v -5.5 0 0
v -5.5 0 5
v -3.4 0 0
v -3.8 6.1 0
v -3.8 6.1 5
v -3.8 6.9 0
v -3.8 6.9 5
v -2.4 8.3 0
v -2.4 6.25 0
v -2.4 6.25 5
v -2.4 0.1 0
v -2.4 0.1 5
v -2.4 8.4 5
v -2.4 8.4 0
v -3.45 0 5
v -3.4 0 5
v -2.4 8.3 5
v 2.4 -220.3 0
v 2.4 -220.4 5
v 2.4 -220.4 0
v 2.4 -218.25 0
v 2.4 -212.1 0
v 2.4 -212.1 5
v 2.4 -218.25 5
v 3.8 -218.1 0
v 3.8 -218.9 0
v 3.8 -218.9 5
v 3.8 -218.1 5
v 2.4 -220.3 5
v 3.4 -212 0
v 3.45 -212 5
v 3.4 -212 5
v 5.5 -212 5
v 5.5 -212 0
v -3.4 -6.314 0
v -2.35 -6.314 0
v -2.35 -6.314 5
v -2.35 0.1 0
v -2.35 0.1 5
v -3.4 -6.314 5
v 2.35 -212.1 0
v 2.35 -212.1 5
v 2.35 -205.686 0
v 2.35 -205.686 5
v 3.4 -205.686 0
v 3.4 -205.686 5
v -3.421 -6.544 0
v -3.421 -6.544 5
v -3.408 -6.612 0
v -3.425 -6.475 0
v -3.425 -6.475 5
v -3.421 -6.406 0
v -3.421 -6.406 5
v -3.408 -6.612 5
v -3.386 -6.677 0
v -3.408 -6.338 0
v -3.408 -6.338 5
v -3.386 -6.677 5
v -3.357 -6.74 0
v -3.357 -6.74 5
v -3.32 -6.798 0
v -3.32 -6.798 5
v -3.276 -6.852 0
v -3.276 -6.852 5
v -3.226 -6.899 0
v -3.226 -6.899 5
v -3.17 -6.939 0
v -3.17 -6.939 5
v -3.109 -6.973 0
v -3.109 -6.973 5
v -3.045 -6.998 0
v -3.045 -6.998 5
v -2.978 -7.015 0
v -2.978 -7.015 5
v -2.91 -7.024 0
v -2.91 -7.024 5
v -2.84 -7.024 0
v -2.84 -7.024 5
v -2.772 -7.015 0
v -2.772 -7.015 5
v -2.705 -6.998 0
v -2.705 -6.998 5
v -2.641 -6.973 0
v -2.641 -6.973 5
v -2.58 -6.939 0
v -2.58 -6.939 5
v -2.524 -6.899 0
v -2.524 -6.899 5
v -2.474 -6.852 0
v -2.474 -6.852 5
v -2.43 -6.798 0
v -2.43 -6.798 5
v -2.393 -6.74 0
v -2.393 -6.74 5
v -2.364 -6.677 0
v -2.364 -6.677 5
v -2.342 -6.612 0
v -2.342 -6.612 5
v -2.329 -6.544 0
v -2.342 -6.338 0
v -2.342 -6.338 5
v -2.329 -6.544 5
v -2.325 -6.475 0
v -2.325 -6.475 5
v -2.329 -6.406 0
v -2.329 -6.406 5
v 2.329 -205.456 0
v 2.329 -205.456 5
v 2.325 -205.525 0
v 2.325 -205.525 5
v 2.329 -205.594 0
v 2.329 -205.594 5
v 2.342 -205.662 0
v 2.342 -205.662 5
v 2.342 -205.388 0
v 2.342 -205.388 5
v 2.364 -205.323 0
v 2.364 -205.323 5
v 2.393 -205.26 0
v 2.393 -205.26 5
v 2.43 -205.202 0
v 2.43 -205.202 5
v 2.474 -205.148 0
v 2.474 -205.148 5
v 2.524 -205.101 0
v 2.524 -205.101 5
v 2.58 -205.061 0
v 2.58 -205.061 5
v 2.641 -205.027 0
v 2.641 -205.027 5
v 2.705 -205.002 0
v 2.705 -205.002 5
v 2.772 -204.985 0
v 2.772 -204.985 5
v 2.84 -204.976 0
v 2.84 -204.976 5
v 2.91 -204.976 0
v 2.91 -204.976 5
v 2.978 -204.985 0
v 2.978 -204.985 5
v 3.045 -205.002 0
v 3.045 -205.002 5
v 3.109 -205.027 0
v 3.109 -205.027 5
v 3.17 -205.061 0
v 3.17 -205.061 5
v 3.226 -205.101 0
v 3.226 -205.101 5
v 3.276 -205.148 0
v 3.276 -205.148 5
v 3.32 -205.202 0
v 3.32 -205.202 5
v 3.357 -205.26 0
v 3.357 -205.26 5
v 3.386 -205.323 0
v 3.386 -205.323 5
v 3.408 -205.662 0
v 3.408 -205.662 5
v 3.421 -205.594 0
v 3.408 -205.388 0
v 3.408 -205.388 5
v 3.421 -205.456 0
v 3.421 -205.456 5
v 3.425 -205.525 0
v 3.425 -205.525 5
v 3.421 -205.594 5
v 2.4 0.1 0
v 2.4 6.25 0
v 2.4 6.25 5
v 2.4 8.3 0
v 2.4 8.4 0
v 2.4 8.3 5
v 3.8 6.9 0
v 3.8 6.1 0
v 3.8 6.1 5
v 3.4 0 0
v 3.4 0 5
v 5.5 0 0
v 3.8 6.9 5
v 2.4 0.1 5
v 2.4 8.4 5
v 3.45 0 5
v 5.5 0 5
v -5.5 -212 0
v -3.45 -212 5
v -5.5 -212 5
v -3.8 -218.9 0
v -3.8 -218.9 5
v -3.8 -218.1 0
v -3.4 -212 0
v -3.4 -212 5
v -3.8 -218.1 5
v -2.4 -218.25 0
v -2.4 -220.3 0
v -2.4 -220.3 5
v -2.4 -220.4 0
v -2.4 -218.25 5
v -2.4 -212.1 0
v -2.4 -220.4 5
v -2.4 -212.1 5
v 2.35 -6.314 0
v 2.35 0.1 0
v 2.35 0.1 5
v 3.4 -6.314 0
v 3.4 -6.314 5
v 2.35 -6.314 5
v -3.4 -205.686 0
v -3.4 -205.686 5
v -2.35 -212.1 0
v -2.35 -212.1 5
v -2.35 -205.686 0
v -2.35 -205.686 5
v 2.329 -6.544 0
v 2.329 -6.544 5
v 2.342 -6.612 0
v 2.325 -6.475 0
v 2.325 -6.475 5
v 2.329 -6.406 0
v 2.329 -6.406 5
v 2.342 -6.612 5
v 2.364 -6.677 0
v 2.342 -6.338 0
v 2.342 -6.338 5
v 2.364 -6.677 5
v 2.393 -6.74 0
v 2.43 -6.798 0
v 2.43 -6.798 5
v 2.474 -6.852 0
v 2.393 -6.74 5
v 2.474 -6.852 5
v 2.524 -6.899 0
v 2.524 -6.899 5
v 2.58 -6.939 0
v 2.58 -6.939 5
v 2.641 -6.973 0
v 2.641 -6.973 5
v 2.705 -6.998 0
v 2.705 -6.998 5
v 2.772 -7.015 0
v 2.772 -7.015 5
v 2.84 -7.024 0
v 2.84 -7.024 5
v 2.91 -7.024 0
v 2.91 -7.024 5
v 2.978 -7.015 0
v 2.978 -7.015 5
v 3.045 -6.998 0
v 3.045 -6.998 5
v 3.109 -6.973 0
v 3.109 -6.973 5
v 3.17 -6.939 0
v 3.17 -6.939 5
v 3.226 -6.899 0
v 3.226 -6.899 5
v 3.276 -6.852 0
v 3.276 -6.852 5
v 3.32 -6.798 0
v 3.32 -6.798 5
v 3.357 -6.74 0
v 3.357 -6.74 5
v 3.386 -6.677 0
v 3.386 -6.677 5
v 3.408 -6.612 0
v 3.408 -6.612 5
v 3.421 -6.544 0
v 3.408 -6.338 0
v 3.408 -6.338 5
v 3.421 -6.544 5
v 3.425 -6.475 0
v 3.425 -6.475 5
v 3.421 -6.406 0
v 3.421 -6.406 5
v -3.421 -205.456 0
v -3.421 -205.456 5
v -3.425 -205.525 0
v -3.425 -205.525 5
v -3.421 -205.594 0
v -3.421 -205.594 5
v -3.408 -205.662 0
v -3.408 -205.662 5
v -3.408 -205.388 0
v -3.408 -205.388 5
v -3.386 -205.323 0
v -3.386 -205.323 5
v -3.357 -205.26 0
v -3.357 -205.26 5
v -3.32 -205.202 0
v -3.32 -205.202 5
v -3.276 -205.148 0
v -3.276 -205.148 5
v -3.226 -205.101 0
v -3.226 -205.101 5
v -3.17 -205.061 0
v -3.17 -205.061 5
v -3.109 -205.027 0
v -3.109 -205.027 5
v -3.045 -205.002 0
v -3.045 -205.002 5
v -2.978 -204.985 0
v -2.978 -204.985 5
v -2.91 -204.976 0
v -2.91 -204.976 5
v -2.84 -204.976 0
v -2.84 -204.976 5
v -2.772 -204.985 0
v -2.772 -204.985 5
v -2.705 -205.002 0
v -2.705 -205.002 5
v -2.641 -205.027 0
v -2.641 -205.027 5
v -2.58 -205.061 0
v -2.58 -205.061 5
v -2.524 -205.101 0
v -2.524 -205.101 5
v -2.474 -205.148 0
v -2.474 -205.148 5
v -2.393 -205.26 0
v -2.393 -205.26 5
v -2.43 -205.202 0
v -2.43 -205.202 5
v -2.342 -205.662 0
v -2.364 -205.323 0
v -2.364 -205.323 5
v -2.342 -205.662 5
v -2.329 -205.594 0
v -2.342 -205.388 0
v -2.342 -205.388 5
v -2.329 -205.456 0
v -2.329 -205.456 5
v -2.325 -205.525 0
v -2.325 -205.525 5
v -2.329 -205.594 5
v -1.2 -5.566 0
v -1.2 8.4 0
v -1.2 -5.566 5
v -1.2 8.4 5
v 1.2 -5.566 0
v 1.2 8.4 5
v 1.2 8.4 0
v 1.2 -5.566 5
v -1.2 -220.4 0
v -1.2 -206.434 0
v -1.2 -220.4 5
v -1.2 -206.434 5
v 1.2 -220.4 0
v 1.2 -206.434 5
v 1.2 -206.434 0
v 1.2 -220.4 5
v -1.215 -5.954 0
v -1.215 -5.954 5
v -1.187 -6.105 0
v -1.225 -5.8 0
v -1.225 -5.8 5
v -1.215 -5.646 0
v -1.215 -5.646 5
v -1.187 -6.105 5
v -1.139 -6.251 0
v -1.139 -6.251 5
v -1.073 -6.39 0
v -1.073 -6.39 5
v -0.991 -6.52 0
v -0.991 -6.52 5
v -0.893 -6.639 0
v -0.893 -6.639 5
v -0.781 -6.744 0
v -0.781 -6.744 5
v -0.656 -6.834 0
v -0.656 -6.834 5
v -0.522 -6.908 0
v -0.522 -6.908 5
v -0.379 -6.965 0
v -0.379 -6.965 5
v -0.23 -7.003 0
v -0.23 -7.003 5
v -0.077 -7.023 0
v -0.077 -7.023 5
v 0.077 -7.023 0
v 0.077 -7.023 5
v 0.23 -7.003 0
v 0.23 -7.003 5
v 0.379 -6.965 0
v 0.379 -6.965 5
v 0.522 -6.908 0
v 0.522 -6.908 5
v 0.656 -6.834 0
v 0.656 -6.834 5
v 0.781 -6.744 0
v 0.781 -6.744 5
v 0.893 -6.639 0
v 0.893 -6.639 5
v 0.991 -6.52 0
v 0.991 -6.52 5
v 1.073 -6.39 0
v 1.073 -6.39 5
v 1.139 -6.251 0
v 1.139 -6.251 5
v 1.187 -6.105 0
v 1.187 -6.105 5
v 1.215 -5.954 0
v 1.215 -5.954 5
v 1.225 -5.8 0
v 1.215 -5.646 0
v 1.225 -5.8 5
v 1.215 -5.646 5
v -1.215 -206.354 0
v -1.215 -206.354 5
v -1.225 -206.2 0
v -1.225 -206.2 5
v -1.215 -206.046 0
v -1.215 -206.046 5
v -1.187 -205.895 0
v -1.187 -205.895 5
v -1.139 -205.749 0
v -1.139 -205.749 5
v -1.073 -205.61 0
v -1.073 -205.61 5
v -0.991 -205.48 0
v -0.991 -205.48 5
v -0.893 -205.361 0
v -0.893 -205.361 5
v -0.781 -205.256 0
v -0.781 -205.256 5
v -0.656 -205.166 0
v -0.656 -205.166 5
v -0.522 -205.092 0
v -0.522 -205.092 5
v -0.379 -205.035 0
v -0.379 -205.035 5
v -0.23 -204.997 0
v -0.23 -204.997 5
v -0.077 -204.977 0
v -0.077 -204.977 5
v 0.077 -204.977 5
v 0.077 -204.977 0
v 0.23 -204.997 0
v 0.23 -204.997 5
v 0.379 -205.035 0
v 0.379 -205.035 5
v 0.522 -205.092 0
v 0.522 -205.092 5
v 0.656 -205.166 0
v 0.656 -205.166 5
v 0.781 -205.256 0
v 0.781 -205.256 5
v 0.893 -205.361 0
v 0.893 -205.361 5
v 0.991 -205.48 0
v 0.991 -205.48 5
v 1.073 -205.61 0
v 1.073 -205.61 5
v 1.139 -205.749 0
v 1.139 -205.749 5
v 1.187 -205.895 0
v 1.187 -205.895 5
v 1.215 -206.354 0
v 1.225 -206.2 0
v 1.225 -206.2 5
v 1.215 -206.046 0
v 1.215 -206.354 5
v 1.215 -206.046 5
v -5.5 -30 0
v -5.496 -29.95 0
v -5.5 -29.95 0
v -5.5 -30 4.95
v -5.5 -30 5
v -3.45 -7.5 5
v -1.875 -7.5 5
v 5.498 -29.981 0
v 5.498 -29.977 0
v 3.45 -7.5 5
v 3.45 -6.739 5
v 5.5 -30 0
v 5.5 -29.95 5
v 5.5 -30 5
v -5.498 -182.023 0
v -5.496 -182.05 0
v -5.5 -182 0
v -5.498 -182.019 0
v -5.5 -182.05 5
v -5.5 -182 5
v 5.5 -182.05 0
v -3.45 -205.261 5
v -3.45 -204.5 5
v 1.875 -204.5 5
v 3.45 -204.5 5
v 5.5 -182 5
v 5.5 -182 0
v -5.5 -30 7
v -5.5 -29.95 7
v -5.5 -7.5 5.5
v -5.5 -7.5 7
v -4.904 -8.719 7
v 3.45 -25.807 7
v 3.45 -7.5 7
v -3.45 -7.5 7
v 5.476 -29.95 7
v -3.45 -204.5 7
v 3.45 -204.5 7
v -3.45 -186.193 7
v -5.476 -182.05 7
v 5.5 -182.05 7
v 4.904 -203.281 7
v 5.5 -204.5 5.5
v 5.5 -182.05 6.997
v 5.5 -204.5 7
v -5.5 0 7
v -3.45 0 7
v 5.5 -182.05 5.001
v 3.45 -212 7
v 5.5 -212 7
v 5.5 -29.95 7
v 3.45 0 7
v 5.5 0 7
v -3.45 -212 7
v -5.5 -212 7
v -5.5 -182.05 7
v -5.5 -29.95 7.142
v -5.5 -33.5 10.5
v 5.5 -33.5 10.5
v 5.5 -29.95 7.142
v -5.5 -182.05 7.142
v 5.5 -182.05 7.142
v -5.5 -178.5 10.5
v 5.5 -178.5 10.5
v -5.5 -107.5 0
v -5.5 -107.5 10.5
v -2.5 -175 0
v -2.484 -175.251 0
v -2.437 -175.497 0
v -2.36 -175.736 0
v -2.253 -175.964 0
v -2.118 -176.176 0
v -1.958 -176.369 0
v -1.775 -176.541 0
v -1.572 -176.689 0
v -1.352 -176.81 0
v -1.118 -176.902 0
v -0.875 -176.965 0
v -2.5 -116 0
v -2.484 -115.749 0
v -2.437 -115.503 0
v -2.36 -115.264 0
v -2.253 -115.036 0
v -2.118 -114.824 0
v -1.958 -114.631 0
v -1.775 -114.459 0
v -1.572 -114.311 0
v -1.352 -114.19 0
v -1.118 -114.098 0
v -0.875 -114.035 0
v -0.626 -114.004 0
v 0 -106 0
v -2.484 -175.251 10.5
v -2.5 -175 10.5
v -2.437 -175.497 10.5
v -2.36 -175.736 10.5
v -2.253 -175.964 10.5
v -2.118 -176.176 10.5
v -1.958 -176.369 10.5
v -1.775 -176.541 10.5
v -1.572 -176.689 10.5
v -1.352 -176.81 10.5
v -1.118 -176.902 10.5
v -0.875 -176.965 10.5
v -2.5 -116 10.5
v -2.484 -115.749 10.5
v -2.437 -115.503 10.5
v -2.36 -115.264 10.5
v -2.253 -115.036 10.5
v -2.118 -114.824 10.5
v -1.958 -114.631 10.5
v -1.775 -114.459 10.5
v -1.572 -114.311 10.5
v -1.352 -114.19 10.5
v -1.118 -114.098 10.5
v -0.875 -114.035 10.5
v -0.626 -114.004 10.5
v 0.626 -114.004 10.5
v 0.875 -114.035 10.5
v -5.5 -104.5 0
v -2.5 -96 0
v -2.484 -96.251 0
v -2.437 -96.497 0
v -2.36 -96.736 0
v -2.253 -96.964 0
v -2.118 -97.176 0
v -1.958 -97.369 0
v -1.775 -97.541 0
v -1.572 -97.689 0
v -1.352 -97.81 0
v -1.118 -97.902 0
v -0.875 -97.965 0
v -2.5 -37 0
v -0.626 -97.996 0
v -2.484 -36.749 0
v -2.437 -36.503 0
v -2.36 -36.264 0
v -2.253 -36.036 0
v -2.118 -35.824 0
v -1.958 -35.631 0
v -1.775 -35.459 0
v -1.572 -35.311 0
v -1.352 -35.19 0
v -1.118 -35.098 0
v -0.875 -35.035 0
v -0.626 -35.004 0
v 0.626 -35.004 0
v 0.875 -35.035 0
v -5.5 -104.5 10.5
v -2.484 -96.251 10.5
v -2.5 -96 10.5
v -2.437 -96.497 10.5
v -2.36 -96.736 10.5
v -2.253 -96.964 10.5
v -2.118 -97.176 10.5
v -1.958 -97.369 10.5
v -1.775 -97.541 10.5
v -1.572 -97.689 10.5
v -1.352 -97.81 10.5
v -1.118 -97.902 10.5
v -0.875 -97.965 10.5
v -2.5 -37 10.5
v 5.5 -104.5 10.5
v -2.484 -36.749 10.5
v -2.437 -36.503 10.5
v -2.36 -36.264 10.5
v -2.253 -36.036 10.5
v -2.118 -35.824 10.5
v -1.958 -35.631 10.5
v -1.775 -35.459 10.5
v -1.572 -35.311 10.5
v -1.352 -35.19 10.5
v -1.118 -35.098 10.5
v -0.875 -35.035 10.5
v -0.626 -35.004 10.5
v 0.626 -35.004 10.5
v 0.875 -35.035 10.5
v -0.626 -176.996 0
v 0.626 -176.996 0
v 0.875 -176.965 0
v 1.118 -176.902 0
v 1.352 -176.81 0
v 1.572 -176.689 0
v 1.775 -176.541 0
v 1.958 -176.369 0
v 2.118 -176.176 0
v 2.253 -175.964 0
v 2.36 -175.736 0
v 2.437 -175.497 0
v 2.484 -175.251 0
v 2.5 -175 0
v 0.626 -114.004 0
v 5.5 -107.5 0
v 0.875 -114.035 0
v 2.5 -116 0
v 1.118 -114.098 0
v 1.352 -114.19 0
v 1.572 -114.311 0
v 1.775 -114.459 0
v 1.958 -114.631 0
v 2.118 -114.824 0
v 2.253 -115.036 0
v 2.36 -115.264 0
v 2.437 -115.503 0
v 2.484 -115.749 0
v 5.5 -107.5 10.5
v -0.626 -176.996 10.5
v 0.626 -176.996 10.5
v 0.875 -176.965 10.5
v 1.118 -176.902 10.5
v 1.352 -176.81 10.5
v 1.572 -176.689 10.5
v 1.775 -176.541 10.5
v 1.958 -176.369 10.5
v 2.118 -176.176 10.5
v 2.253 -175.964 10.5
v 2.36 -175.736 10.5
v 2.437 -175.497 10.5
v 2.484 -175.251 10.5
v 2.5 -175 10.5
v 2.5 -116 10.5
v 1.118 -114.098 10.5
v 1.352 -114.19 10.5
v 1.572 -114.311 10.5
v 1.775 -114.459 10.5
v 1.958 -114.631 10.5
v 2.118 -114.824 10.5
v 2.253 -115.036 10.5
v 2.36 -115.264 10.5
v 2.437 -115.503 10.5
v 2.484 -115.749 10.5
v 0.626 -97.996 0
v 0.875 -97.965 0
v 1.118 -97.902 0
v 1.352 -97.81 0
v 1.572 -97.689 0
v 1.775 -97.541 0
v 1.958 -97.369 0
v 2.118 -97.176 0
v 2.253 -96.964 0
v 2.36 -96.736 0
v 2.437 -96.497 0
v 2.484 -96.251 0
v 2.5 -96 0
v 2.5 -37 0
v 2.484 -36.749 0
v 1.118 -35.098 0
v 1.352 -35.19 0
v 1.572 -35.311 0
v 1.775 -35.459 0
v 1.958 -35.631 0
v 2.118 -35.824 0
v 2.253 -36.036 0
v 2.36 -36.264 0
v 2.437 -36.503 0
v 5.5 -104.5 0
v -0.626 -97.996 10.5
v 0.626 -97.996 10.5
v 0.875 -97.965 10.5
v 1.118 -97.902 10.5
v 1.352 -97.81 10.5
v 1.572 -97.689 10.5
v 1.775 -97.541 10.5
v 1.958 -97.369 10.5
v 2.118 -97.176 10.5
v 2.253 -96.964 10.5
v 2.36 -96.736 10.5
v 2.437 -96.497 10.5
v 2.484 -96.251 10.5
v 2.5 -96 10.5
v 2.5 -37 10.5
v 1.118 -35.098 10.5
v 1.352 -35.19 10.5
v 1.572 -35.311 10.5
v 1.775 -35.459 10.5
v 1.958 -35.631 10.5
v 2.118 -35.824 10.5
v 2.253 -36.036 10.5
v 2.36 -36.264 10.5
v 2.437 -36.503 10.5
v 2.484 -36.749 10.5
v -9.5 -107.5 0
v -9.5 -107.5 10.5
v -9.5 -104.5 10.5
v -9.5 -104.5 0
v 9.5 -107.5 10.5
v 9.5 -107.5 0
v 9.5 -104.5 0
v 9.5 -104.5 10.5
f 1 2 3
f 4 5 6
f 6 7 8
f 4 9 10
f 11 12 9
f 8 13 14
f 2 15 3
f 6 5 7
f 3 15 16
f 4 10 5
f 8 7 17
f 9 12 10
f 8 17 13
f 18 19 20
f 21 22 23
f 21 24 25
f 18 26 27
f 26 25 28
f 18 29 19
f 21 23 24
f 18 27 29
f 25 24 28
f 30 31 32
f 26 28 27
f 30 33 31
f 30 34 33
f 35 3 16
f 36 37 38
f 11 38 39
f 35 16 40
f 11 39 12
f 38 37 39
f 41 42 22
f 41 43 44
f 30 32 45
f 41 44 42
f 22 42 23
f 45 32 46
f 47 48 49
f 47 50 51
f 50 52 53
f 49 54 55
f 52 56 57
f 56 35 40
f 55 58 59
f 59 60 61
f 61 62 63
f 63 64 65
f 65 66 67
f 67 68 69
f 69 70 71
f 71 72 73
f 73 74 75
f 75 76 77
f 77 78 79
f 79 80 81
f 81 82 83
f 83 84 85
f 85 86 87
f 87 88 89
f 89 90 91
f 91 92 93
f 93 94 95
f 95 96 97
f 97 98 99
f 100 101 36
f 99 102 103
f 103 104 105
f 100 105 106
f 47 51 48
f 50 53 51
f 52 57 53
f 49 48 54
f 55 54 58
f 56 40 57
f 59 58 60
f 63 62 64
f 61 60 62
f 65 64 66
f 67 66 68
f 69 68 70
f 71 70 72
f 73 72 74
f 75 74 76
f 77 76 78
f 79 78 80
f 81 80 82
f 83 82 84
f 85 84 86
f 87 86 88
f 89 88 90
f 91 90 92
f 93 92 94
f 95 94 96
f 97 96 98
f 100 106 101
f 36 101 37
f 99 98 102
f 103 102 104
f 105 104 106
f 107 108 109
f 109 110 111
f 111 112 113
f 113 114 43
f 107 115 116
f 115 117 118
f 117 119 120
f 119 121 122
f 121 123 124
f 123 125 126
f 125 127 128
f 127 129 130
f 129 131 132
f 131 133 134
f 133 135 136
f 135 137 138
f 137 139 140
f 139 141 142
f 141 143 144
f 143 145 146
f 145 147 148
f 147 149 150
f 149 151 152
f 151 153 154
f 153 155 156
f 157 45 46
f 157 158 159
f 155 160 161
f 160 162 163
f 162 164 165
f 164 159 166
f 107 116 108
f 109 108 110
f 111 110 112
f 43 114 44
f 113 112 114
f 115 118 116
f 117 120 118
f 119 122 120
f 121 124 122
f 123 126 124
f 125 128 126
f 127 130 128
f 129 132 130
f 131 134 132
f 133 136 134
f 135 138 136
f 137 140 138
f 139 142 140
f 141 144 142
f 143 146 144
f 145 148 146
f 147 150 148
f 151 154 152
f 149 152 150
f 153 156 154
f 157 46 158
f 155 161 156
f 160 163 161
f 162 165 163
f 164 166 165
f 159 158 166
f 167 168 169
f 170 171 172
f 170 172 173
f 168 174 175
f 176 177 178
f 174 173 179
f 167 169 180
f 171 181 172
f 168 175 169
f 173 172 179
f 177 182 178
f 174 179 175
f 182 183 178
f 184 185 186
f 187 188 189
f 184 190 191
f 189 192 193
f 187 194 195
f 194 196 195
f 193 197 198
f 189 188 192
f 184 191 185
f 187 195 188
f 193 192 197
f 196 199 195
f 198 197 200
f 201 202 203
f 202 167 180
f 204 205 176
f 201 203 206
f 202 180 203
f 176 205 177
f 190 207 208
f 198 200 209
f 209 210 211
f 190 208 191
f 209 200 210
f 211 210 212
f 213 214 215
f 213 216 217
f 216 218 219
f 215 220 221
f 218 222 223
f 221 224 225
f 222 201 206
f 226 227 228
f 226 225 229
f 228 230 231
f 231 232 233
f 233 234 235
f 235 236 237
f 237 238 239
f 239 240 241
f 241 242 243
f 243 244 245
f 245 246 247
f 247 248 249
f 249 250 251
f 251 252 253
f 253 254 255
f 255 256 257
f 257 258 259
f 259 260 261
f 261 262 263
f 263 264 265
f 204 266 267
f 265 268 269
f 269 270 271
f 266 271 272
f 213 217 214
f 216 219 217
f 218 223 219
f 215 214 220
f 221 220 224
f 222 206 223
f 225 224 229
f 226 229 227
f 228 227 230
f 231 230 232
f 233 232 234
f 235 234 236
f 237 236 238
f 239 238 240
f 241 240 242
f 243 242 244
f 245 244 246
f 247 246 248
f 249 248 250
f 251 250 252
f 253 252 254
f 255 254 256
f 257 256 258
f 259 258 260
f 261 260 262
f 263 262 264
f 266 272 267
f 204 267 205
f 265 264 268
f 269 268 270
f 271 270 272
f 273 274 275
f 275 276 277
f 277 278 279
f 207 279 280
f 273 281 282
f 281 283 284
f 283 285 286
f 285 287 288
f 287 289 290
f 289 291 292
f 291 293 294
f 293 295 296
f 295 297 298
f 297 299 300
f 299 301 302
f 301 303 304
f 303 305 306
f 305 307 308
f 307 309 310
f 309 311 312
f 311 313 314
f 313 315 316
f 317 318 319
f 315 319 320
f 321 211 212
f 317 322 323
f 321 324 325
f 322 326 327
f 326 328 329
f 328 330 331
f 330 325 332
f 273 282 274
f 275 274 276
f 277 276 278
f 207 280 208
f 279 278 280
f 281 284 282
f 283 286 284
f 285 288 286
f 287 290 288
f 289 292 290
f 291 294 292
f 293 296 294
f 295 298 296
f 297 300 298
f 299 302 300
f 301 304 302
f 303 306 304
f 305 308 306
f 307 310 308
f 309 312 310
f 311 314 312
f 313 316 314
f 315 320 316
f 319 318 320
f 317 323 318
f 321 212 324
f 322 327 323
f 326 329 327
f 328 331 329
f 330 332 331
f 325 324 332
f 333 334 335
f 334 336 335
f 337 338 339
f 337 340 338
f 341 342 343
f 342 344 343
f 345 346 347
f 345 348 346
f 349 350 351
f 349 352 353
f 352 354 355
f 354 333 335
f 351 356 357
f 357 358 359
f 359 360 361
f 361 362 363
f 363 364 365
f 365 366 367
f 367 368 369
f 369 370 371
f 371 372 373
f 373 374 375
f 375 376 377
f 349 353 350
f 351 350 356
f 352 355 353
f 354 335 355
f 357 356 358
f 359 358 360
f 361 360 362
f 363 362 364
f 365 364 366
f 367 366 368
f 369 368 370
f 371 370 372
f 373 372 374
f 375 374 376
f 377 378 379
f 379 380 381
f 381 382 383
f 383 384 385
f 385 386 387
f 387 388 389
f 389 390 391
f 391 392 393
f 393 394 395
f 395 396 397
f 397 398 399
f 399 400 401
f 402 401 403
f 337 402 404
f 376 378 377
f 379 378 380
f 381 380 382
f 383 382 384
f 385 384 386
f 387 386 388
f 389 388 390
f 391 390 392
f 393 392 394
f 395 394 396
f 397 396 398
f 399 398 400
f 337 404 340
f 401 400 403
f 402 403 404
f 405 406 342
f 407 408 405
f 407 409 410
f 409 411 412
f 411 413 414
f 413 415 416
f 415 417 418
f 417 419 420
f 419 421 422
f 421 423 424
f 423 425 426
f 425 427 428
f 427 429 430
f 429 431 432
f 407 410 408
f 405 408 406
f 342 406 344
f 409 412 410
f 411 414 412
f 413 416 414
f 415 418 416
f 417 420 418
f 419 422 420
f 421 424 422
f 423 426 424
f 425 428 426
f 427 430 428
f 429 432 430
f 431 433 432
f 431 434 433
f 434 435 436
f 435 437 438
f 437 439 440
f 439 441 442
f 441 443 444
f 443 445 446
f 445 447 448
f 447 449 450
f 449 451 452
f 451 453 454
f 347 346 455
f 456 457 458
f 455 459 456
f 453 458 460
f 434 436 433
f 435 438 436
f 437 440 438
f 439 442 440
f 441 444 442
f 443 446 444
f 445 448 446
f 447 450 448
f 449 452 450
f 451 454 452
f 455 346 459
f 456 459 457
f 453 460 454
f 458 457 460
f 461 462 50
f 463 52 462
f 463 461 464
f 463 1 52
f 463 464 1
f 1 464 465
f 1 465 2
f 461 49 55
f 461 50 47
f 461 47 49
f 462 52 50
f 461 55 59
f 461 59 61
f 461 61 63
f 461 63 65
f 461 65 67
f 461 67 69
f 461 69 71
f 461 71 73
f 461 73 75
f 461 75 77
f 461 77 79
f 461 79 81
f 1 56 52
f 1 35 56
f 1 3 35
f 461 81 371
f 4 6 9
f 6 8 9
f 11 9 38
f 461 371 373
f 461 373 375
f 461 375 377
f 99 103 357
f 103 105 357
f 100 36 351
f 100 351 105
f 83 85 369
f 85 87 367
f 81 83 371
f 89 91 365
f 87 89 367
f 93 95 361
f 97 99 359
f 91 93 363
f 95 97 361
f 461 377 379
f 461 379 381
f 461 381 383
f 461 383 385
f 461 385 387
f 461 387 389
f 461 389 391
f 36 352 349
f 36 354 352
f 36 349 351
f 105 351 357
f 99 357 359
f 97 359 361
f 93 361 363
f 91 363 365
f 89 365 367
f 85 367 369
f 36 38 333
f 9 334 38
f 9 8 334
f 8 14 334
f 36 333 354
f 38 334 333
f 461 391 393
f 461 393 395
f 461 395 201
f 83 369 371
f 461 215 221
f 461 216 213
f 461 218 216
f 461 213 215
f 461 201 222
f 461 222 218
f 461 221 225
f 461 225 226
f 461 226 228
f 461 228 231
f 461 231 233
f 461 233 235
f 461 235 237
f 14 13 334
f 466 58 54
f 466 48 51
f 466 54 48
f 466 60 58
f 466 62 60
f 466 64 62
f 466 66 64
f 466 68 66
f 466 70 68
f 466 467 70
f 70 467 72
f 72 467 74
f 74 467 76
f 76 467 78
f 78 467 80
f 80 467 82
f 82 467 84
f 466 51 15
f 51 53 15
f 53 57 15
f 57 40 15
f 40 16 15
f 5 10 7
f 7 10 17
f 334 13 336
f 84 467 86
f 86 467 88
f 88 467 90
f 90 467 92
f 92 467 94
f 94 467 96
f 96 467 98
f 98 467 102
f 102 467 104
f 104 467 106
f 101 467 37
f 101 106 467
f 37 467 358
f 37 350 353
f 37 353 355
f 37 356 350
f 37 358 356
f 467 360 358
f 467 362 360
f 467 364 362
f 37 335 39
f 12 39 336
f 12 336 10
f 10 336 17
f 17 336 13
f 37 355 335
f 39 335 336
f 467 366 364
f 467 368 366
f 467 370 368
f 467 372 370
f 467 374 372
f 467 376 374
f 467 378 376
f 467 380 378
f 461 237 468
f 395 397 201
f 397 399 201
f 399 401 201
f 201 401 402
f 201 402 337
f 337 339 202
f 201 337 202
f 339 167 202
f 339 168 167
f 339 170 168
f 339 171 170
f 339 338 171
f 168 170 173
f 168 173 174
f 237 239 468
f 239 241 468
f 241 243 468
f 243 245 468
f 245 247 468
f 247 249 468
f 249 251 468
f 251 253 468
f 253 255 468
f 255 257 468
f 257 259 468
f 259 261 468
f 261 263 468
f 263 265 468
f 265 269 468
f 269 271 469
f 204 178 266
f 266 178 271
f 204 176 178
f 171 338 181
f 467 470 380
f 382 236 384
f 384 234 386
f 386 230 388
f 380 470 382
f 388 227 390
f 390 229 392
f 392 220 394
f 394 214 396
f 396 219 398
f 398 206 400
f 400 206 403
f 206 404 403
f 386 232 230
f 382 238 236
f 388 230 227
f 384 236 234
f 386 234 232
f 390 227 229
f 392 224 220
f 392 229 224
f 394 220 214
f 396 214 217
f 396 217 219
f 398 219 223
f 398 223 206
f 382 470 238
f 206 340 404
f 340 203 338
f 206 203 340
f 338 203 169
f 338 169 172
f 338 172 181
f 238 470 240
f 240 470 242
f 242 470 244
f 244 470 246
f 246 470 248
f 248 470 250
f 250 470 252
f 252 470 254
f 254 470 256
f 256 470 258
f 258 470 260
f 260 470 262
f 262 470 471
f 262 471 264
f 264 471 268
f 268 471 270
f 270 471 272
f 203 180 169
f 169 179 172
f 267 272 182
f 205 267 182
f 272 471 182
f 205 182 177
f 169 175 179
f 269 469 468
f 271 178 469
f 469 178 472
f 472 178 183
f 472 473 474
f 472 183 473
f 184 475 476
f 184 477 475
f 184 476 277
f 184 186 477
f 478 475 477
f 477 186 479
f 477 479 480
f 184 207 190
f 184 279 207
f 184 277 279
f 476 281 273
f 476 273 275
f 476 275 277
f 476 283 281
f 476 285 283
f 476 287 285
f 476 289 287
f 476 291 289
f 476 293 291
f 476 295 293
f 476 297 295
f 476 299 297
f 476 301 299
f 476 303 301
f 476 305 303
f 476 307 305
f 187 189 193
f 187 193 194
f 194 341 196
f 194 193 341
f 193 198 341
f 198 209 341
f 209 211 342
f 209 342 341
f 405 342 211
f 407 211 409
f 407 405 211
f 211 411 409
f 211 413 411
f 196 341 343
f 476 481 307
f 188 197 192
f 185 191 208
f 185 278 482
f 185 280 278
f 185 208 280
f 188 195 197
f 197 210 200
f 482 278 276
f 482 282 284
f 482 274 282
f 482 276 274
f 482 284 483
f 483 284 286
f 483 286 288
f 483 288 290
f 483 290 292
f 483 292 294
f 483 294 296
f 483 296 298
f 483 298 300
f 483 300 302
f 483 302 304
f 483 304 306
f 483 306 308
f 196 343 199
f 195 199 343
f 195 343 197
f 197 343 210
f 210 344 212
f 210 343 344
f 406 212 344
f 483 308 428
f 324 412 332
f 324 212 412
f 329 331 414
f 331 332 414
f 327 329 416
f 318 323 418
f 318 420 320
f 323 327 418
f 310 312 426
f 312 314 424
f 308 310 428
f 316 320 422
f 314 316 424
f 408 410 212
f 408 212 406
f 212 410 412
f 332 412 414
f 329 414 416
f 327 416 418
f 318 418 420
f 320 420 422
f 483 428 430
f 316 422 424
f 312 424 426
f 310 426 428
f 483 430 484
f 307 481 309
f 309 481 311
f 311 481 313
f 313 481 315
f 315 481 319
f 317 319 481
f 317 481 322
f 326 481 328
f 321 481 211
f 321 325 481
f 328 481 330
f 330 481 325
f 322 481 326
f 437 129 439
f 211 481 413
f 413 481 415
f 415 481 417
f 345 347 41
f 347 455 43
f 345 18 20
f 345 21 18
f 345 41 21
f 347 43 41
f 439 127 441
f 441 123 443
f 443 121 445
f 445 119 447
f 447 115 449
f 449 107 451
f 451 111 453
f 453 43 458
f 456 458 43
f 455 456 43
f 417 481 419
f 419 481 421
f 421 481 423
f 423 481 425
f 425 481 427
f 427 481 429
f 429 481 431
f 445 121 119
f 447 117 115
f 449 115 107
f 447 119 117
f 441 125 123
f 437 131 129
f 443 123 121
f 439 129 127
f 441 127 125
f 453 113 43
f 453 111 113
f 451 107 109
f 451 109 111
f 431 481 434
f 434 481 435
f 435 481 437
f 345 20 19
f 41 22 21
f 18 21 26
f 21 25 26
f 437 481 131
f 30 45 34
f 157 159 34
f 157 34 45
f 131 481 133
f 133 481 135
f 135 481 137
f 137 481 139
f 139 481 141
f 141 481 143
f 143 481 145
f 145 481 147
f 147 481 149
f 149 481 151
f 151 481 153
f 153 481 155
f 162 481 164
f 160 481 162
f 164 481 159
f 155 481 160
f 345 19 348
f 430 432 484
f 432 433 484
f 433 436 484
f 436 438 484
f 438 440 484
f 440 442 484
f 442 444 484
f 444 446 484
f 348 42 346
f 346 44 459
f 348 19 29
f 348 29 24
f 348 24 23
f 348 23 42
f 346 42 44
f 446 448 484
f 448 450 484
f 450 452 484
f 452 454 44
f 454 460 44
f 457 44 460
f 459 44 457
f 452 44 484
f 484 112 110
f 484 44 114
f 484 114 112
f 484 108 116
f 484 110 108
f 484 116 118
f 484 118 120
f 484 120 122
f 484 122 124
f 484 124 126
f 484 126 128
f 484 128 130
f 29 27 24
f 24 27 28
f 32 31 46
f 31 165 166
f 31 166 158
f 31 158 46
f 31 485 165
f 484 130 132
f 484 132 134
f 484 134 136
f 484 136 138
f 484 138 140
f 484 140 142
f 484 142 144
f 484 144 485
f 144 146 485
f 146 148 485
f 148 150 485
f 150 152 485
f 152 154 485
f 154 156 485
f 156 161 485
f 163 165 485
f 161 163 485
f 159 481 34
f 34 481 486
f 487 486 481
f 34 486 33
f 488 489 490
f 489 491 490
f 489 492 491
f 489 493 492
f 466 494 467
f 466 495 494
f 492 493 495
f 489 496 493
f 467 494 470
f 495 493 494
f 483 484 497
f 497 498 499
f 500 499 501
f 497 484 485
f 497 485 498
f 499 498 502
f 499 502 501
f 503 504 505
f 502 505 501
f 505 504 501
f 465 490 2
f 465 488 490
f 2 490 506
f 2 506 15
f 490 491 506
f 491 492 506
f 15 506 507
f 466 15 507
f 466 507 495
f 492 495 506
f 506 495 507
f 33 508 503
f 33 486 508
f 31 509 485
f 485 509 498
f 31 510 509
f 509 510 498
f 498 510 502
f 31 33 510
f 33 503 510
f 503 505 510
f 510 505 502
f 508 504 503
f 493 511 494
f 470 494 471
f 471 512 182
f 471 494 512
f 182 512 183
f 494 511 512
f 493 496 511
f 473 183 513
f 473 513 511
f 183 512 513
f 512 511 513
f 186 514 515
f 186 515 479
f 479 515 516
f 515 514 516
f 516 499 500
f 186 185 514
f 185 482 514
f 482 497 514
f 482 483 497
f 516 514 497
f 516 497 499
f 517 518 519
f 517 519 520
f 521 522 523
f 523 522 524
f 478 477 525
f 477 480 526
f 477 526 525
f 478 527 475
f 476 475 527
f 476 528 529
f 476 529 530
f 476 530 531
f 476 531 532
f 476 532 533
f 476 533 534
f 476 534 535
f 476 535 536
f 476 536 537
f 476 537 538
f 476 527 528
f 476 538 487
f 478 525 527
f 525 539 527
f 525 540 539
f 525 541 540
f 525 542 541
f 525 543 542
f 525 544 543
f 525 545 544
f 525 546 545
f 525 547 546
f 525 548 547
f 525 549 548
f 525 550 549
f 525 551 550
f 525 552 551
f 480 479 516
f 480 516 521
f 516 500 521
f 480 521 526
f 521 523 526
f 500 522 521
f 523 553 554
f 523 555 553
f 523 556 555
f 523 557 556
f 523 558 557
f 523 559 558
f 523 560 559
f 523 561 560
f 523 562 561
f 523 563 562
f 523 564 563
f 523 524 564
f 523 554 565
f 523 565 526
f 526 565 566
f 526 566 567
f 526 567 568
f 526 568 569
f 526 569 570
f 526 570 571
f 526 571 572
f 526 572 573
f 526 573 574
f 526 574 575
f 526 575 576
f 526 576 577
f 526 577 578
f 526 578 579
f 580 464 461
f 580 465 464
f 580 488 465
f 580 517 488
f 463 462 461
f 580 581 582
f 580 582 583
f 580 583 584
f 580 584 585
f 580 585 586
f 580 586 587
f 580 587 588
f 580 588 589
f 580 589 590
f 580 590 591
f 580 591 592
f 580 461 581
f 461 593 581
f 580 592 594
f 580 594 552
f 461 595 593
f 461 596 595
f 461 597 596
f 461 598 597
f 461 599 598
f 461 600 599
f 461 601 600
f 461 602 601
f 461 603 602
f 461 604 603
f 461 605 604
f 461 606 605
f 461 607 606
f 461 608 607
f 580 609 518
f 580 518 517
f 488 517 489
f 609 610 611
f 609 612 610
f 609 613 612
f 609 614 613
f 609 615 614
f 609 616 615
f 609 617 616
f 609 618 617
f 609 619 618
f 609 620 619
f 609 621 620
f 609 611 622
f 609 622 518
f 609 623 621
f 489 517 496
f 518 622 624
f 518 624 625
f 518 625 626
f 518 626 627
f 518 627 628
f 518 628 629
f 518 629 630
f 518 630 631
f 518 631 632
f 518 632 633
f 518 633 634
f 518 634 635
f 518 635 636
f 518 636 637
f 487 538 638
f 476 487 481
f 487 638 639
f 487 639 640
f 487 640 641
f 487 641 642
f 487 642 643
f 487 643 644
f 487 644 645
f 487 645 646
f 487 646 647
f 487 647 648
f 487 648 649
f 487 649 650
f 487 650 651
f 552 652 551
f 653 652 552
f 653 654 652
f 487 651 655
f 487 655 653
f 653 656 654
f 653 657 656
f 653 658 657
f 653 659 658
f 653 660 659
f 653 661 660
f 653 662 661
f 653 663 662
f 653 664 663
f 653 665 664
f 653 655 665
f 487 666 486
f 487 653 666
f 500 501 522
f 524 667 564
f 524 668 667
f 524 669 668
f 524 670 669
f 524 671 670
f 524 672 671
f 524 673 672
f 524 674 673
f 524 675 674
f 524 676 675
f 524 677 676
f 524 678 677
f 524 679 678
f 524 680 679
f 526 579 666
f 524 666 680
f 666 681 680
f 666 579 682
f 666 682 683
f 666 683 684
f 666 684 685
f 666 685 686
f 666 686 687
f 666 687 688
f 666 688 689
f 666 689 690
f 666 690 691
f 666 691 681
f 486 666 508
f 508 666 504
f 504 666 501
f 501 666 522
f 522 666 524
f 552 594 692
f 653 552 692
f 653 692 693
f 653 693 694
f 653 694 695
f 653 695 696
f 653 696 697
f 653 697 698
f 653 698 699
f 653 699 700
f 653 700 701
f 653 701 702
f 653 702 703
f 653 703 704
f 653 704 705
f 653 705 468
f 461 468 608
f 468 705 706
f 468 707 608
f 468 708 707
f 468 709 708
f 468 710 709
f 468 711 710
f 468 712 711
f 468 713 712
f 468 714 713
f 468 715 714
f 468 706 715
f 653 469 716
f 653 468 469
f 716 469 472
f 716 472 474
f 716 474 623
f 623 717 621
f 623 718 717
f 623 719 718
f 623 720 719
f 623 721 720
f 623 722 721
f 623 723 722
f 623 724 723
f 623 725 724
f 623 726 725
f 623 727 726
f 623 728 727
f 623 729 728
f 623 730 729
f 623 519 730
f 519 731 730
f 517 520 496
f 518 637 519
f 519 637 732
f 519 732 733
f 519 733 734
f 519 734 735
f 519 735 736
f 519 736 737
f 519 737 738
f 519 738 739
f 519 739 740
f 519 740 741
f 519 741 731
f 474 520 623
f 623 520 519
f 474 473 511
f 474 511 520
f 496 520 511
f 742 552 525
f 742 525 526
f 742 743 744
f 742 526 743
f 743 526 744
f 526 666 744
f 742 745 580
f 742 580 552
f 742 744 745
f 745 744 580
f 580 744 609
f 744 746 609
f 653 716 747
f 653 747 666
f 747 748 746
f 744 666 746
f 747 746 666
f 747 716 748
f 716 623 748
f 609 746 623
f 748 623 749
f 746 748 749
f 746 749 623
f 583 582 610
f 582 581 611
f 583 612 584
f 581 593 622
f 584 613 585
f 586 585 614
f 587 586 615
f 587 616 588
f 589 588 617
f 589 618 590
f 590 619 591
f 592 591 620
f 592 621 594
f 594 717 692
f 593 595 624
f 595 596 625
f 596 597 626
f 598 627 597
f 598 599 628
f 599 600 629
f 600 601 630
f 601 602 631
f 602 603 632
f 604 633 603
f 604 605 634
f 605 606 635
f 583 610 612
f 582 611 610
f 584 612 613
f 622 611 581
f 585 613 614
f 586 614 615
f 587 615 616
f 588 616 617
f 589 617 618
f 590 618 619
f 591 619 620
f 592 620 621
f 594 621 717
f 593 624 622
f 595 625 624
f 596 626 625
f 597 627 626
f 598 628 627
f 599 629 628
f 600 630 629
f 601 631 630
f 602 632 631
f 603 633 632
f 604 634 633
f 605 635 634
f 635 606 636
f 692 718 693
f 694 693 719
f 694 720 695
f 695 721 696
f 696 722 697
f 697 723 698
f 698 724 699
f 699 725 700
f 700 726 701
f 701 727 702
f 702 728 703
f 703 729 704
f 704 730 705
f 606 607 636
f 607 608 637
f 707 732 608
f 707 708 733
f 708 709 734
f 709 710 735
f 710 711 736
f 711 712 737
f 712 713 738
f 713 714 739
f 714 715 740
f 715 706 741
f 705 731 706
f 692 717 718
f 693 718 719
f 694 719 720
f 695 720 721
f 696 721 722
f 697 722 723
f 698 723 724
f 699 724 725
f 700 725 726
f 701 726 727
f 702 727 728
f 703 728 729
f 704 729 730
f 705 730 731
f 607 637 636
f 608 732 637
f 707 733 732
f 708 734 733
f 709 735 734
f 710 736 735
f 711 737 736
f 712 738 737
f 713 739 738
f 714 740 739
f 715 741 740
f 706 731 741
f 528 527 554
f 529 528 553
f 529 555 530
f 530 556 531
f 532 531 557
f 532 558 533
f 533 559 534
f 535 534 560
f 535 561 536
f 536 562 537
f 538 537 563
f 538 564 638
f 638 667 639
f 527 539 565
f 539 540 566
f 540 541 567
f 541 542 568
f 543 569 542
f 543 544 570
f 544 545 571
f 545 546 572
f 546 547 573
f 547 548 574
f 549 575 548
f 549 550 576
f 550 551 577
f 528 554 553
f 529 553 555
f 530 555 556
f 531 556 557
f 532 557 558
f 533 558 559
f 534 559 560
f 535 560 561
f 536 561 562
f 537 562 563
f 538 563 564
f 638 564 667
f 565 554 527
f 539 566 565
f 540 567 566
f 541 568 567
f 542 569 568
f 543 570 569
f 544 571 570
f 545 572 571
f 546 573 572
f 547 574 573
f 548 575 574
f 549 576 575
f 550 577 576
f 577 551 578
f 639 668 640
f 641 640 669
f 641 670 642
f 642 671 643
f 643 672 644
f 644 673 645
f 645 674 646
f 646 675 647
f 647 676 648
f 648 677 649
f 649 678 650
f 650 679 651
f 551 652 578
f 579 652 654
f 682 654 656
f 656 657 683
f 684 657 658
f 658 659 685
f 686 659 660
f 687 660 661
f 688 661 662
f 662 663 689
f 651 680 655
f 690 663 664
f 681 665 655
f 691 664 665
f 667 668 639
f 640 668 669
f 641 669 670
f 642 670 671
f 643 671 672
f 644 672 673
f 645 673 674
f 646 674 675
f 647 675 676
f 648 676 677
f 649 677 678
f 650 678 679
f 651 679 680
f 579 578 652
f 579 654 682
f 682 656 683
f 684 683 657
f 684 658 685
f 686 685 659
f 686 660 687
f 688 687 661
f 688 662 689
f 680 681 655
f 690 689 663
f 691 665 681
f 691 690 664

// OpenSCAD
$fn = 50;

difference() {
	union() {
		translate(v = [0, 0, 0]) {
			rotate(a = [0, 0, 0]) {
				difference() {
					union() {
						translate(v = [0, 0, 0]) {
							rotate(a = [0, 0, 0]) {
								difference() {
									union() {
										translate(v = [0, 0, 0]) {
											rotate(a = [0, 0, 0]) {
												difference() {
													union() {
														translate(v = [0, 0, 0]) {
															rotate(a = [0, 0, 0]) {
																difference() {
																	union() {
																		translate(v = [-5.5, -30.0, 0]) {
																			cube(size = [11.0, 38.4, 5.0]);
																		}
																	}
																	union() {
																		translate(v = [0, 0, -0.1]) {
																			linear_extrude(height = 5.2) {
																				polygon(points = [[-2.4, 0], [-2.4, 6.25], [-3.8, 6.1], [-3.8, 6.8999999999999995], [-2.4, 8.299999999999999], [-2.4, 9.399999999999999], [-5.7, 9.399999999999999], [-5.7, 0]]);
																			}
																		}
																		translate(v = [0, 0, -0.1]) {
																			linear_extrude(height = 5.2) {
																				polygon(points = [[-2.35, -6.5], [-2.35, -6.3375], [-2.35, -6.175], [-2.35, -6.0125], [-2.35, -5.85], [-2.35, -5.6875], [-2.35, -5.525], [-2.35, -5.3625], [-2.35, -5.2], [-2.35, -5.0375], [-2.35, -4.875], [-2.35, -4.7125], [-2.35, -4.55], [-2.35, -4.3875], [-2.35, -4.225], [-2.35, -4.0625], [-2.35, -3.9], [-2.35, -3.7375], [-2.35, -3.575], [-2.35, -3.4125], [-2.35, -3.25], [-2.35, -3.0875], [-2.35, -2.925], [-2.35, -2.7625], [-2.35, -2.6], [-2.35, -2.4375], [-2.35, -2.2750000000000004], [-2.35, -2.1125], [-2.35, -1.9500000000000002], [-2.35, -1.7874999999999996], [-2.35, -1.625], [-2.35, -1.4625000000000004], [-2.35, -1.2999999999999998], [-2.35, -1.1375000000000002], [-2.35, -0.9749999999999996], [-2.35, -0.8125], [-2.35, -0.6500000000000004], [-2.35, -0.4874999999999998], [-2.35, -0.3250000000000002], [-2.35, -0.16249999999999964], [-2.35, 0.0], [-2.35, 0.1], [-3.4, 0.1], [-3.4, -6.5]]);
																			}
																		}
																		translate(v = [-2.875, -6.475, -0.1]) {
																			cylinder(h = 5.2, r = 0.55);
																		}
																		translate(v = [0, 0, -0.1]) {
																			linear_extrude(height = 5.2) {
																				polygon(points = [[2.4, 0], [2.4, 6.25], [3.8, 6.1], [3.8, 6.8999999999999995], [2.4, 8.299999999999999], [2.4, 9.399999999999999], [5.7, 9.399999999999999], [5.7, 0]]);
																			}
																		}
																		translate(v = [0, 0, -0.1]) {
																			linear_extrude(height = 5.2) {
																				polygon(points = [[2.35, -6.5], [2.35, -6.3375], [2.35, -6.175], [2.35, -6.0125], [2.35, -5.85], [2.35, -5.6875], [2.35, -5.525], [2.35, -5.3625], [2.35, -5.2], [2.35, -5.0375], [2.35, -4.875], [2.35, -4.7125], [2.35, -4.55], [2.35, -4.3875], [2.35, -4.225], [2.35, -4.0625], [2.35, -3.9], [2.35, -3.7375], [2.35, -3.575], [2.35, -3.4125], [2.35, -3.25], [2.35, -3.0875], [2.35, -2.925], [2.35, -2.7625], [2.35, -2.6], [2.35, -2.4375], [2.35, -2.2750000000000004], [2.35, -2.1125], [2.35, -1.9500000000000002], [2.35, -1.7874999999999996], [2.35, -1.625], [2.35, -1.4625000000000004], [2.35, -1.2999999999999998], [2.35, -1.1375000000000002], [2.35, -0.9749999999999996], [2.35, -0.8125], [2.35, -0.6500000000000004], [2.35, -0.4874999999999998], [2.35, -0.3250000000000002], [2.35, -0.16249999999999964], [2.35, 0.0], [2.35, 0.1], [3.4, 0.1], [3.4, -6.5]]);
																			}
																		}
																		translate(v = [2.875, -6.475, -0.1]) {
																			cylinder(h = 5.2, r = 0.55);
																		}
																		translate(v = [0, 0, -0.1]) {
																			linear_extrude(height = 5.2) {
																				polygon(points = [[-1.2, -5.85], [-1.2, -5.632142857142857], [-1.2, -5.414285714285714], [-1.2, -5.196428571428571], [-1.2, -4.978571428571428], [-1.2, -4.760714285714285], [-1.2, -4.542857142857143], [-1.2, -4.324999999999999], [-1.2, -4.107142857142857], [-1.2, -3.8892857142857142], [-1.2, -3.6714285714285713], [-1.2, -3.4535714285714283], [-1.2, -3.2357142857142853], [-1.2, -3.0178571428571423], [-1.2, -2.8], [-1.2, -2.582142857142857], [-1.2, -2.364285714285714], [-1.2, -2.146428571428571], [-1.2, -1.9285714285714284], [-1.2, -1.7107142857142854], [-1.2, -1.4928571428571429], [-1.2, -1.2749999999999995], [-1.2, -1.057142857142857], [-1.2, -0.8392857142857135], [-1.2, -0.621428571428571], [-1.2, -0.40357142857142847], [-1.2, -0.18571428571428505], [-1.2, 0], [-1.2, 0.03214285714285747], [-1.2, 0.25], [-1.2, 0.4678571428571434], [-1.2, 0.6857142857142859], [-1.2, 0.9035714285714294], [-1.2, 1.1214285714285719], [-1.2, 1.3392857142857144], [-1.2, 1.5571428571428578], [-1.2, 1.7750000000000004], [-1.2, 1.9928571428571429], [-1.2, 2.2107142857142854], [-1.2, 2.428571428571429], [-1.2, 2.6464285714285722], [-1.2, 2.864285714285714], [-1.2, 3.0821428571428573], [-1.2, 3.3000000000000007], [-1.2, 3.5178571428571423], [-1.2, 3.7357142857142858], [-1.2, 3.953571428571429], [-1.2, 4.171428571428573], [-1.2, 4.389285714285714], [-1.2, 4.607142857142858], [-1.2, 4.825000000000001], [-1.2, 5.042857142857143], [-1.2, 5.260714285714286], [-1.2, 5.4785714285714295], [-1.2, 5.696428571428571], [-1.2, 5.914285714285715], [-1.2, 6.1], [-1.2, 6.132142857142858], [-1.2, 6.25], [-1.2, 6.35], [-1.2, 6.567857142857143], [-1.2, 6.7857142857142865], [-1.2, 7.003571428571428], [-1.2, 7.2214285714285715], [-1.2, 7.439285714285715], [-1.2, 7.657142857142858], [-1.2, 7.875], [-1.2, 8.092857142857143], [-1.2, 8.310714285714287], [-1.2, 8.528571428571428], [-1.2, 8.746428571428572], [-1.2, 8.964285714285715], [-1.2, 9.182142857142857], [-1.2, 9.4], [1.2, 9.4], [1.2, 9.182142857142857], [1.2, 8.964285714285715], [1.2, 8.746428571428572], [1.2, 8.528571428571428], [1.2, 8.310714285714287], [1.2, 8.092857142857143], [1.2, 7.875], [1.2, 7.657142857142858], [1.2, 7.439285714285715], [1.2, 7.2214285714285715], [1.2, 7.003571428571428], [1.2, 6.7857142857142865], [1.2, 6.567857142857143], [1.2, 6.35], [1.2, 6.25], [1.2, 6.132142857142858], [1.2, 6.1], [1.2, 5.914285714285715], [1.2, 5.696428571428571], [1.2, 5.4785714285714295], [1.2, 5.260714285714286], [1.2, 5.042857142857143], [1.2, 4.825000000000001], [1.2, 4.607142857142858], [1.2, 4.389285714285714], [1.2, 4.171428571428573], [1.2, 3.953571428571429], [1.2, 3.7357142857142858], [1.2, 3.5178571428571423], [1.2, 3.3000000000000007], [1.2, 3.0821428571428573], [1.2, 2.864285714285714], [1.2, 2.6464285714285722], [1.2, 2.428571428571429], [1.2, 2.2107142857142854], [1.2, 1.9928571428571429], [1.2, 1.7750000000000004], [1.2, 1.5571428571428578], [1.2, 1.3392857142857144], [1.2, 1.1214285714285719], [1.2, 0.9035714285714294], [1.2, 0.6857142857142859], [1.2, 0.4678571428571434], [1.2, 0.25], [1.2, 0.03214285714285747], [1.2, 0], [1.2, -0.18571428571428505], [1.2, -0.40357142857142847], [1.2, -0.621428571428571], [1.2, -0.8392857142857135], [1.2, -1.057142857142857], [1.2, -1.2749999999999995], [1.2, -1.4928571428571429], [1.2, -1.7107142857142854], [1.2, -1.9285714285714284], [1.2, -2.146428571428571], [1.2, -2.364285714285714], [1.2, -2.582142857142857], [1.2, -2.8], [1.2, -3.0178571428571423], [1.2, -3.2357142857142853], [1.2, -3.4535714285714283], [1.2, -3.6714285714285713], [1.2, -3.8892857142857142], [1.2, -4.107142857142857], [1.2, -4.324999999999999], [1.2, -4.542857142857143], [1.2, -4.760714285714285], [1.2, -4.978571428571428], [1.2, -5.196428571428571], [1.2, -5.414285714285714], [1.2, -5.632142857142857], [1.2, -5.85]]);
																			}
																		}
																		translate(v = [0, -5.8, -0.1]) {
																			cylinder(h = 5.2, r = 1.2249999999999999);
																		}
																	}
																}
															}
														}
														translate(v = [0, 0, 0]) {
															rotate(a = [0, 0, 0]) {
																difference() {
																	union() {
																		translate(v = [-5.5, -30.0, 4.95]) {
																			cube(size = [11.0, 22.5, 2.05]);
																		}
																	}
																	union();
																}
															}
														}
														translate(v = [-5.5, -30.0, 4.95]) {
															cube(size = [2.0500000000000003, 30.0, 2.05]);
														}
														translate(v = [3.4499999999999997, -30.0, 4.95]) {
															cube(size = [2.0500000000000003, 30.0, 2.05]);
														}
													}
													union();
												}
											}
										}
									}
									union();
								}
							}
						}
						translate(v = [0, -212.0, 0]) {
							rotate(a = [0, 0, 180]) {
								difference() {
									union() {
										translate(v = [0, 0, 0]) {
											rotate(a = [0, 0, 0]) {
												difference() {
													union() {
														translate(v = [0, 0, 0]) {
															rotate(a = [0, 0, 0]) {
																difference() {
																	union() {
																		translate(v = [-5.5, -30.0, 0]) {
																			cube(size = [11.0, 38.4, 5.0]);
																		}
																	}
																	union() {
																		translate(v = [0, 0, -0.1]) {
																			linear_extrude(height = 5.2) {
																				polygon(points = [[-2.4, 0], [-2.4, 6.25], [-3.8, 6.1], [-3.8, 6.8999999999999995], [-2.4, 8.299999999999999], [-2.4, 9.399999999999999], [-5.7, 9.399999999999999], [-5.7, 0]]);
																			}
																		}
																		translate(v = [0, 0, -0.1]) {
																			linear_extrude(height = 5.2) {
																				polygon(points = [[-2.35, -6.5], [-2.35, -6.3375], [-2.35, -6.175], [-2.35, -6.0125], [-2.35, -5.85], [-2.35, -5.6875], [-2.35, -5.525], [-2.35, -5.3625], [-2.35, -5.2], [-2.35, -5.0375], [-2.35, -4.875], [-2.35, -4.7125], [-2.35, -4.55], [-2.35, -4.3875], [-2.35, -4.225], [-2.35, -4.0625], [-2.35, -3.9], [-2.35, -3.7375], [-2.35, -3.575], [-2.35, -3.4125], [-2.35, -3.25], [-2.35, -3.0875], [-2.35, -2.925], [-2.35, -2.7625], [-2.35, -2.6], [-2.35, -2.4375], [-2.35, -2.2750000000000004], [-2.35, -2.1125], [-2.35, -1.9500000000000002], [-2.35, -1.7874999999999996], [-2.35, -1.625], [-2.35, -1.4625000000000004], [-2.35, -1.2999999999999998], [-2.35, -1.1375000000000002], [-2.35, -0.9749999999999996], [-2.35, -0.8125], [-2.35, -0.6500000000000004], [-2.35, -0.4874999999999998], [-2.35, -0.3250000000000002], [-2.35, -0.16249999999999964], [-2.35, 0.0], [-2.35, 0.1], [-3.4, 0.1], [-3.4, -6.5]]);
																			}
																		}
																		translate(v = [-2.875, -6.475, -0.1]) {
																			cylinder(h = 5.2, r = 0.55);
																		}
																		translate(v = [0, 0, -0.1]) {
																			linear_extrude(height = 5.2) {
																				polygon(points = [[2.4, 0], [2.4, 6.25], [3.8, 6.1], [3.8, 6.8999999999999995], [2.4, 8.299999999999999], [2.4, 9.399999999999999], [5.7, 9.399999999999999], [5.7, 0]]);
																			}
																		}
																		translate(v = [0, 0, -0.1]) {
																			linear_extrude(height = 5.2) {
																				polygon(points = [[2.35, -6.5], [2.35, -6.3375], [2.35, -6.175], [2.35, -6.0125], [2.35, -5.85], [2.35, -5.6875], [2.35, -5.525], [2.35, -5.3625], [2.35, -5.2], [2.35, -5.0375], [2.35, -4.875], [2.35, -4.7125], [2.35, -4.55], [2.35, -4.3875], [2.35, -4.225], [2.35, -4.0625], [2.35, -3.9], [2.35, -3.7375], [2.35, -3.575], [2.35, -3.4125], [2.35, -3.25], [2.35, -3.0875], [2.35, -2.925], [2.35, -2.7625], [2.35, -2.6], [2.35, -2.4375], [2.35, -2.2750000000000004], [2.35, -2.1125], [2.35, -1.9500000000000002], [2.35, -1.7874999999999996], [2.35, -1.625], [2.35, -1.4625000000000004], [2.35, -1.2999999999999998], [2.35, -1.1375000000000002], [2.35, -0.9749999999999996], [2.35, -0.8125], [2.35, -0.6500000000000004], [2.35, -0.4874999999999998], [2.35, -0.3250000000000002], [2.35, -0.16249999999999964], [2.35, 0.0], [2.35, 0.1], [3.4, 0.1], [3.4, -6.5]]);
																			}
																		}
																		translate(v = [2.875, -6.475, -0.1]) {
																			cylinder(h = 5.2, r = 0.55);
																		}
																		translate(v = [0, 0, -0.1]) {
																			linear_extrude(height = 5.2) {
																				polygon(points = [[-1.2, -5.85], [-1.2, -5.632142857142857], [-1.2, -5.414285714285714], [-1.2, -5.196428571428571], [-1.2, -4.978571428571428], [-1.2, -4.760714285714285], [-1.2, -4.542857142857143], [-1.2, -4.324999999999999], [-1.2, -4.107142857142857], [-1.2, -3.8892857142857142], [-1.2, -3.6714285714285713], [-1.2, -3.4535714285714283], [-1.2, -3.2357142857142853], [-1.2, -3.0178571428571423], [-1.2, -2.8], [-1.2, -2.582142857142857], [-1.2, -2.364285714285714], [-1.2, -2.146428571428571], [-1.2, -1.9285714285714284], [-1.2, -1.7107142857142854], [-1.2, -1.4928571428571429], [-1.2, -1.2749999999999995], [-1.2, -1.057142857142857], [-1.2, -0.8392857142857135], [-1.2, -0.621428571428571], [-1.2, -0.40357142857142847], [-1.2, -0.18571428571428505], [-1.2, 0], [-1.2, 0.03214285714285747], [-1.2, 0.25], [-1.2, 0.4678571428571434], [-1.2, 0.6857142857142859], [-1.2, 0.9035714285714294], [-1.2, 1.1214285714285719], [-1.2, 1.3392857142857144], [-1.2, 1.5571428571428578], [-1.2, 1.7750000000000004], [-1.2, 1.9928571428571429], [-1.2, 2.2107142857142854], [-1.2, 2.428571428571429], [-1.2, 2.6464285714285722], [-1.2, 2.864285714285714], [-1.2, 3.0821428571428573], [-1.2, 3.3000000000000007], [-1.2, 3.5178571428571423], [-1.2, 3.7357142857142858], [-1.2, 3.953571428571429], [-1.2, 4.171428571428573], [-1.2, 4.389285714285714], [-1.2, 4.607142857142858], [-1.2, 4.825000000000001], [-1.2, 5.042857142857143], [-1.2, 5.260714285714286], [-1.2, 5.4785714285714295], [-1.2, 5.696428571428571], [-1.2, 5.914285714285715], [-1.2, 6.1], [-1.2, 6.132142857142858], [-1.2, 6.25], [-1.2, 6.35], [-1.2, 6.567857142857143], [-1.2, 6.7857142857142865], [-1.2, 7.003571428571428], [-1.2, 7.2214285714285715], [-1.2, 7.439285714285715], [-1.2, 7.657142857142858], [-1.2, 7.875], [-1.2, 8.092857142857143], [-1.2, 8.310714285714287], [-1.2, 8.528571428571428], [-1.2, 8.746428571428572], [-1.2, 8.964285714285715], [-1.2, 9.182142857142857], [-1.2, 9.4], [1.2, 9.4], [1.2, 9.182142857142857], [1.2, 8.964285714285715], [1.2, 8.746428571428572], [1.2, 8.528571428571428], [1.2, 8.310714285714287], [1.2, 8.092857142857143], [1.2, 7.875], [1.2, 7.657142857142858], [1.2, 7.439285714285715], [1.2, 7.2214285714285715], [1.2, 7.003571428571428], [1.2, 6.7857142857142865], [1.2, 6.567857142857143], [1.2, 6.35], [1.2, 6.25], [1.2, 6.132142857142858], [1.2, 6.1], [1.2, 5.914285714285715], [1.2, 5.696428571428571], [1.2, 5.4785714285714295], [1.2, 5.260714285714286], [1.2, 5.042857142857143], [1.2, 4.825000000000001], [1.2, 4.607142857142858], [1.2, 4.389285714285714], [1.2, 4.171428571428573], [1.2, 3.953571428571429], [1.2, 3.7357142857142858], [1.2, 3.5178571428571423], [1.2, 3.3000000000000007], [1.2, 3.0821428571428573], [1.2, 2.864285714285714], [1.2, 2.6464285714285722], [1.2, 2.428571428571429], [1.2, 2.2107142857142854], [1.2, 1.9928571428571429], [1.2, 1.7750000000000004], [1.2, 1.5571428571428578], [1.2, 1.3392857142857144], [1.2, 1.1214285714285719], [1.2, 0.9035714285714294], [1.2, 0.6857142857142859], [1.2, 0.4678571428571434], [1.2, 0.25], [1.2, 0.03214285714285747], [1.2, 0], [1.2, -0.18571428571428505], [1.2, -0.40357142857142847], [1.2, -0.621428571428571], [1.2, -0.8392857142857135], [1.2, -1.057142857142857], [1.2, -1.2749999999999995], [1.2, -1.4928571428571429], [1.2, -1.7107142857142854], [1.2, -1.9285714285714284], [1.2, -2.146428571428571], [1.2, -2.364285714285714], [1.2, -2.582142857142857], [1.2, -2.8], [1.2, -3.0178571428571423], [1.2, -3.2357142857142853], [1.2, -3.4535714285714283], [1.2, -3.6714285714285713], [1.2, -3.8892857142857142], [1.2, -4.107142857142857], [1.2, -4.324999999999999], [1.2, -4.542857142857143], [1.2, -4.760714285714285], [1.2, -4.978571428571428], [1.2, -5.196428571428571], [1.2, -5.414285714285714], [1.2, -5.632142857142857], [1.2, -5.85]]);
																			}
																		}
																		translate(v = [0, -5.8, -0.1]) {
																			cylinder(h = 5.2, r = 1.2249999999999999);
																		}
																	}
																}
															}
														}
														translate(v = [0, 0, 0]) {
															rotate(a = [0, 0, 0]) {
																difference() {
																	union() {
																		translate(v = [-5.5, -30.0, 4.95]) {
																			cube(size = [11.0, 22.5, 2.05]);
																		}
																	}
																	union();
																}
															}
														}
														translate(v = [-5.5, -30.0, 4.95]) {
															cube(size = [2.0500000000000003, 30.0, 2.05]);
														}
														translate(v = [3.4499999999999997, -30.0, 4.95]) {
															cube(size = [2.0500000000000003, 30.0, 2.05]);
														}
													}
													union();
												}
											}
										}
									}
									union();
								}
							}
						}
						translate(v = [0, 0, 0]) {
							rotate(a = [0, 0, 0]) {
								difference() {
									union() {
										translate(v = [-5.5, -182.05, 0]) {
											cube(size = [11.0, 152.1, 10.5]);
										}
									}
									union() {
										translate(v = [-5.6, 0, 0]) {
											rotate(a = [90, 0, 90]) {
												linear_extrude(height = 11.2) {
													polygon(points = [[-29.8, 7.0], [-33.5, 10.5], [-33.5, 10.7], [-29.8, 10.7]]);
												}
											}
										}
										translate(v = [-5.6, 0, 0]) {
											rotate(a = [90, 0, 90]) {
												linear_extrude(height = 11.2) {
													polygon(points = [[-182.2, 7.0], [-178.5, 10.5], [-178.5, 10.7], [-182.2, 10.7]]);
												}
											}
										}
									}
								}
							}
						}
						translate(v = [-9.5, -107.5, 0]) {
							cube(size = [19.0, 3.0, 10.5]);
						}
					}
					union() {
						translate(v = [0, -66.5, -0.1]) {
							hull() {
								translate(v = [-0.5, 29.5, 0]) {
									cylinder(h = 14.7, r = 2.0);
								}
								translate(v = [0.5, 29.5, 0]) {
									cylinder(h = 14.7, r = 2.0);
								}
								translate(v = [-0.5, -29.5, 0]) {
									cylinder(h = 14.7, r = 2.0);
								}
								translate(v = [0.5, -29.5, 0]) {
									cylinder(h = 14.7, r = 2.0);
								}
							}
						}
						translate(v = [0, -145.5, -0.1]) {
							hull() {
								translate(v = [-0.5, 29.5, 0]) {
									cylinder(h = 14.7, r = 2.0);
								}
								translate(v = [0.5, 29.5, 0]) {
									cylinder(h = 14.7, r = 2.0);
								}
								translate(v = [-0.5, -29.5, 0]) {
									cylinder(h = 14.7, r = 2.0);
								}
								translate(v = [0.5, -29.5, 0]) {
									cylinder(h = 14.7, r = 2.0);
								}
							}
						}
					}
				}
			}
		}
	}
	union();
}
